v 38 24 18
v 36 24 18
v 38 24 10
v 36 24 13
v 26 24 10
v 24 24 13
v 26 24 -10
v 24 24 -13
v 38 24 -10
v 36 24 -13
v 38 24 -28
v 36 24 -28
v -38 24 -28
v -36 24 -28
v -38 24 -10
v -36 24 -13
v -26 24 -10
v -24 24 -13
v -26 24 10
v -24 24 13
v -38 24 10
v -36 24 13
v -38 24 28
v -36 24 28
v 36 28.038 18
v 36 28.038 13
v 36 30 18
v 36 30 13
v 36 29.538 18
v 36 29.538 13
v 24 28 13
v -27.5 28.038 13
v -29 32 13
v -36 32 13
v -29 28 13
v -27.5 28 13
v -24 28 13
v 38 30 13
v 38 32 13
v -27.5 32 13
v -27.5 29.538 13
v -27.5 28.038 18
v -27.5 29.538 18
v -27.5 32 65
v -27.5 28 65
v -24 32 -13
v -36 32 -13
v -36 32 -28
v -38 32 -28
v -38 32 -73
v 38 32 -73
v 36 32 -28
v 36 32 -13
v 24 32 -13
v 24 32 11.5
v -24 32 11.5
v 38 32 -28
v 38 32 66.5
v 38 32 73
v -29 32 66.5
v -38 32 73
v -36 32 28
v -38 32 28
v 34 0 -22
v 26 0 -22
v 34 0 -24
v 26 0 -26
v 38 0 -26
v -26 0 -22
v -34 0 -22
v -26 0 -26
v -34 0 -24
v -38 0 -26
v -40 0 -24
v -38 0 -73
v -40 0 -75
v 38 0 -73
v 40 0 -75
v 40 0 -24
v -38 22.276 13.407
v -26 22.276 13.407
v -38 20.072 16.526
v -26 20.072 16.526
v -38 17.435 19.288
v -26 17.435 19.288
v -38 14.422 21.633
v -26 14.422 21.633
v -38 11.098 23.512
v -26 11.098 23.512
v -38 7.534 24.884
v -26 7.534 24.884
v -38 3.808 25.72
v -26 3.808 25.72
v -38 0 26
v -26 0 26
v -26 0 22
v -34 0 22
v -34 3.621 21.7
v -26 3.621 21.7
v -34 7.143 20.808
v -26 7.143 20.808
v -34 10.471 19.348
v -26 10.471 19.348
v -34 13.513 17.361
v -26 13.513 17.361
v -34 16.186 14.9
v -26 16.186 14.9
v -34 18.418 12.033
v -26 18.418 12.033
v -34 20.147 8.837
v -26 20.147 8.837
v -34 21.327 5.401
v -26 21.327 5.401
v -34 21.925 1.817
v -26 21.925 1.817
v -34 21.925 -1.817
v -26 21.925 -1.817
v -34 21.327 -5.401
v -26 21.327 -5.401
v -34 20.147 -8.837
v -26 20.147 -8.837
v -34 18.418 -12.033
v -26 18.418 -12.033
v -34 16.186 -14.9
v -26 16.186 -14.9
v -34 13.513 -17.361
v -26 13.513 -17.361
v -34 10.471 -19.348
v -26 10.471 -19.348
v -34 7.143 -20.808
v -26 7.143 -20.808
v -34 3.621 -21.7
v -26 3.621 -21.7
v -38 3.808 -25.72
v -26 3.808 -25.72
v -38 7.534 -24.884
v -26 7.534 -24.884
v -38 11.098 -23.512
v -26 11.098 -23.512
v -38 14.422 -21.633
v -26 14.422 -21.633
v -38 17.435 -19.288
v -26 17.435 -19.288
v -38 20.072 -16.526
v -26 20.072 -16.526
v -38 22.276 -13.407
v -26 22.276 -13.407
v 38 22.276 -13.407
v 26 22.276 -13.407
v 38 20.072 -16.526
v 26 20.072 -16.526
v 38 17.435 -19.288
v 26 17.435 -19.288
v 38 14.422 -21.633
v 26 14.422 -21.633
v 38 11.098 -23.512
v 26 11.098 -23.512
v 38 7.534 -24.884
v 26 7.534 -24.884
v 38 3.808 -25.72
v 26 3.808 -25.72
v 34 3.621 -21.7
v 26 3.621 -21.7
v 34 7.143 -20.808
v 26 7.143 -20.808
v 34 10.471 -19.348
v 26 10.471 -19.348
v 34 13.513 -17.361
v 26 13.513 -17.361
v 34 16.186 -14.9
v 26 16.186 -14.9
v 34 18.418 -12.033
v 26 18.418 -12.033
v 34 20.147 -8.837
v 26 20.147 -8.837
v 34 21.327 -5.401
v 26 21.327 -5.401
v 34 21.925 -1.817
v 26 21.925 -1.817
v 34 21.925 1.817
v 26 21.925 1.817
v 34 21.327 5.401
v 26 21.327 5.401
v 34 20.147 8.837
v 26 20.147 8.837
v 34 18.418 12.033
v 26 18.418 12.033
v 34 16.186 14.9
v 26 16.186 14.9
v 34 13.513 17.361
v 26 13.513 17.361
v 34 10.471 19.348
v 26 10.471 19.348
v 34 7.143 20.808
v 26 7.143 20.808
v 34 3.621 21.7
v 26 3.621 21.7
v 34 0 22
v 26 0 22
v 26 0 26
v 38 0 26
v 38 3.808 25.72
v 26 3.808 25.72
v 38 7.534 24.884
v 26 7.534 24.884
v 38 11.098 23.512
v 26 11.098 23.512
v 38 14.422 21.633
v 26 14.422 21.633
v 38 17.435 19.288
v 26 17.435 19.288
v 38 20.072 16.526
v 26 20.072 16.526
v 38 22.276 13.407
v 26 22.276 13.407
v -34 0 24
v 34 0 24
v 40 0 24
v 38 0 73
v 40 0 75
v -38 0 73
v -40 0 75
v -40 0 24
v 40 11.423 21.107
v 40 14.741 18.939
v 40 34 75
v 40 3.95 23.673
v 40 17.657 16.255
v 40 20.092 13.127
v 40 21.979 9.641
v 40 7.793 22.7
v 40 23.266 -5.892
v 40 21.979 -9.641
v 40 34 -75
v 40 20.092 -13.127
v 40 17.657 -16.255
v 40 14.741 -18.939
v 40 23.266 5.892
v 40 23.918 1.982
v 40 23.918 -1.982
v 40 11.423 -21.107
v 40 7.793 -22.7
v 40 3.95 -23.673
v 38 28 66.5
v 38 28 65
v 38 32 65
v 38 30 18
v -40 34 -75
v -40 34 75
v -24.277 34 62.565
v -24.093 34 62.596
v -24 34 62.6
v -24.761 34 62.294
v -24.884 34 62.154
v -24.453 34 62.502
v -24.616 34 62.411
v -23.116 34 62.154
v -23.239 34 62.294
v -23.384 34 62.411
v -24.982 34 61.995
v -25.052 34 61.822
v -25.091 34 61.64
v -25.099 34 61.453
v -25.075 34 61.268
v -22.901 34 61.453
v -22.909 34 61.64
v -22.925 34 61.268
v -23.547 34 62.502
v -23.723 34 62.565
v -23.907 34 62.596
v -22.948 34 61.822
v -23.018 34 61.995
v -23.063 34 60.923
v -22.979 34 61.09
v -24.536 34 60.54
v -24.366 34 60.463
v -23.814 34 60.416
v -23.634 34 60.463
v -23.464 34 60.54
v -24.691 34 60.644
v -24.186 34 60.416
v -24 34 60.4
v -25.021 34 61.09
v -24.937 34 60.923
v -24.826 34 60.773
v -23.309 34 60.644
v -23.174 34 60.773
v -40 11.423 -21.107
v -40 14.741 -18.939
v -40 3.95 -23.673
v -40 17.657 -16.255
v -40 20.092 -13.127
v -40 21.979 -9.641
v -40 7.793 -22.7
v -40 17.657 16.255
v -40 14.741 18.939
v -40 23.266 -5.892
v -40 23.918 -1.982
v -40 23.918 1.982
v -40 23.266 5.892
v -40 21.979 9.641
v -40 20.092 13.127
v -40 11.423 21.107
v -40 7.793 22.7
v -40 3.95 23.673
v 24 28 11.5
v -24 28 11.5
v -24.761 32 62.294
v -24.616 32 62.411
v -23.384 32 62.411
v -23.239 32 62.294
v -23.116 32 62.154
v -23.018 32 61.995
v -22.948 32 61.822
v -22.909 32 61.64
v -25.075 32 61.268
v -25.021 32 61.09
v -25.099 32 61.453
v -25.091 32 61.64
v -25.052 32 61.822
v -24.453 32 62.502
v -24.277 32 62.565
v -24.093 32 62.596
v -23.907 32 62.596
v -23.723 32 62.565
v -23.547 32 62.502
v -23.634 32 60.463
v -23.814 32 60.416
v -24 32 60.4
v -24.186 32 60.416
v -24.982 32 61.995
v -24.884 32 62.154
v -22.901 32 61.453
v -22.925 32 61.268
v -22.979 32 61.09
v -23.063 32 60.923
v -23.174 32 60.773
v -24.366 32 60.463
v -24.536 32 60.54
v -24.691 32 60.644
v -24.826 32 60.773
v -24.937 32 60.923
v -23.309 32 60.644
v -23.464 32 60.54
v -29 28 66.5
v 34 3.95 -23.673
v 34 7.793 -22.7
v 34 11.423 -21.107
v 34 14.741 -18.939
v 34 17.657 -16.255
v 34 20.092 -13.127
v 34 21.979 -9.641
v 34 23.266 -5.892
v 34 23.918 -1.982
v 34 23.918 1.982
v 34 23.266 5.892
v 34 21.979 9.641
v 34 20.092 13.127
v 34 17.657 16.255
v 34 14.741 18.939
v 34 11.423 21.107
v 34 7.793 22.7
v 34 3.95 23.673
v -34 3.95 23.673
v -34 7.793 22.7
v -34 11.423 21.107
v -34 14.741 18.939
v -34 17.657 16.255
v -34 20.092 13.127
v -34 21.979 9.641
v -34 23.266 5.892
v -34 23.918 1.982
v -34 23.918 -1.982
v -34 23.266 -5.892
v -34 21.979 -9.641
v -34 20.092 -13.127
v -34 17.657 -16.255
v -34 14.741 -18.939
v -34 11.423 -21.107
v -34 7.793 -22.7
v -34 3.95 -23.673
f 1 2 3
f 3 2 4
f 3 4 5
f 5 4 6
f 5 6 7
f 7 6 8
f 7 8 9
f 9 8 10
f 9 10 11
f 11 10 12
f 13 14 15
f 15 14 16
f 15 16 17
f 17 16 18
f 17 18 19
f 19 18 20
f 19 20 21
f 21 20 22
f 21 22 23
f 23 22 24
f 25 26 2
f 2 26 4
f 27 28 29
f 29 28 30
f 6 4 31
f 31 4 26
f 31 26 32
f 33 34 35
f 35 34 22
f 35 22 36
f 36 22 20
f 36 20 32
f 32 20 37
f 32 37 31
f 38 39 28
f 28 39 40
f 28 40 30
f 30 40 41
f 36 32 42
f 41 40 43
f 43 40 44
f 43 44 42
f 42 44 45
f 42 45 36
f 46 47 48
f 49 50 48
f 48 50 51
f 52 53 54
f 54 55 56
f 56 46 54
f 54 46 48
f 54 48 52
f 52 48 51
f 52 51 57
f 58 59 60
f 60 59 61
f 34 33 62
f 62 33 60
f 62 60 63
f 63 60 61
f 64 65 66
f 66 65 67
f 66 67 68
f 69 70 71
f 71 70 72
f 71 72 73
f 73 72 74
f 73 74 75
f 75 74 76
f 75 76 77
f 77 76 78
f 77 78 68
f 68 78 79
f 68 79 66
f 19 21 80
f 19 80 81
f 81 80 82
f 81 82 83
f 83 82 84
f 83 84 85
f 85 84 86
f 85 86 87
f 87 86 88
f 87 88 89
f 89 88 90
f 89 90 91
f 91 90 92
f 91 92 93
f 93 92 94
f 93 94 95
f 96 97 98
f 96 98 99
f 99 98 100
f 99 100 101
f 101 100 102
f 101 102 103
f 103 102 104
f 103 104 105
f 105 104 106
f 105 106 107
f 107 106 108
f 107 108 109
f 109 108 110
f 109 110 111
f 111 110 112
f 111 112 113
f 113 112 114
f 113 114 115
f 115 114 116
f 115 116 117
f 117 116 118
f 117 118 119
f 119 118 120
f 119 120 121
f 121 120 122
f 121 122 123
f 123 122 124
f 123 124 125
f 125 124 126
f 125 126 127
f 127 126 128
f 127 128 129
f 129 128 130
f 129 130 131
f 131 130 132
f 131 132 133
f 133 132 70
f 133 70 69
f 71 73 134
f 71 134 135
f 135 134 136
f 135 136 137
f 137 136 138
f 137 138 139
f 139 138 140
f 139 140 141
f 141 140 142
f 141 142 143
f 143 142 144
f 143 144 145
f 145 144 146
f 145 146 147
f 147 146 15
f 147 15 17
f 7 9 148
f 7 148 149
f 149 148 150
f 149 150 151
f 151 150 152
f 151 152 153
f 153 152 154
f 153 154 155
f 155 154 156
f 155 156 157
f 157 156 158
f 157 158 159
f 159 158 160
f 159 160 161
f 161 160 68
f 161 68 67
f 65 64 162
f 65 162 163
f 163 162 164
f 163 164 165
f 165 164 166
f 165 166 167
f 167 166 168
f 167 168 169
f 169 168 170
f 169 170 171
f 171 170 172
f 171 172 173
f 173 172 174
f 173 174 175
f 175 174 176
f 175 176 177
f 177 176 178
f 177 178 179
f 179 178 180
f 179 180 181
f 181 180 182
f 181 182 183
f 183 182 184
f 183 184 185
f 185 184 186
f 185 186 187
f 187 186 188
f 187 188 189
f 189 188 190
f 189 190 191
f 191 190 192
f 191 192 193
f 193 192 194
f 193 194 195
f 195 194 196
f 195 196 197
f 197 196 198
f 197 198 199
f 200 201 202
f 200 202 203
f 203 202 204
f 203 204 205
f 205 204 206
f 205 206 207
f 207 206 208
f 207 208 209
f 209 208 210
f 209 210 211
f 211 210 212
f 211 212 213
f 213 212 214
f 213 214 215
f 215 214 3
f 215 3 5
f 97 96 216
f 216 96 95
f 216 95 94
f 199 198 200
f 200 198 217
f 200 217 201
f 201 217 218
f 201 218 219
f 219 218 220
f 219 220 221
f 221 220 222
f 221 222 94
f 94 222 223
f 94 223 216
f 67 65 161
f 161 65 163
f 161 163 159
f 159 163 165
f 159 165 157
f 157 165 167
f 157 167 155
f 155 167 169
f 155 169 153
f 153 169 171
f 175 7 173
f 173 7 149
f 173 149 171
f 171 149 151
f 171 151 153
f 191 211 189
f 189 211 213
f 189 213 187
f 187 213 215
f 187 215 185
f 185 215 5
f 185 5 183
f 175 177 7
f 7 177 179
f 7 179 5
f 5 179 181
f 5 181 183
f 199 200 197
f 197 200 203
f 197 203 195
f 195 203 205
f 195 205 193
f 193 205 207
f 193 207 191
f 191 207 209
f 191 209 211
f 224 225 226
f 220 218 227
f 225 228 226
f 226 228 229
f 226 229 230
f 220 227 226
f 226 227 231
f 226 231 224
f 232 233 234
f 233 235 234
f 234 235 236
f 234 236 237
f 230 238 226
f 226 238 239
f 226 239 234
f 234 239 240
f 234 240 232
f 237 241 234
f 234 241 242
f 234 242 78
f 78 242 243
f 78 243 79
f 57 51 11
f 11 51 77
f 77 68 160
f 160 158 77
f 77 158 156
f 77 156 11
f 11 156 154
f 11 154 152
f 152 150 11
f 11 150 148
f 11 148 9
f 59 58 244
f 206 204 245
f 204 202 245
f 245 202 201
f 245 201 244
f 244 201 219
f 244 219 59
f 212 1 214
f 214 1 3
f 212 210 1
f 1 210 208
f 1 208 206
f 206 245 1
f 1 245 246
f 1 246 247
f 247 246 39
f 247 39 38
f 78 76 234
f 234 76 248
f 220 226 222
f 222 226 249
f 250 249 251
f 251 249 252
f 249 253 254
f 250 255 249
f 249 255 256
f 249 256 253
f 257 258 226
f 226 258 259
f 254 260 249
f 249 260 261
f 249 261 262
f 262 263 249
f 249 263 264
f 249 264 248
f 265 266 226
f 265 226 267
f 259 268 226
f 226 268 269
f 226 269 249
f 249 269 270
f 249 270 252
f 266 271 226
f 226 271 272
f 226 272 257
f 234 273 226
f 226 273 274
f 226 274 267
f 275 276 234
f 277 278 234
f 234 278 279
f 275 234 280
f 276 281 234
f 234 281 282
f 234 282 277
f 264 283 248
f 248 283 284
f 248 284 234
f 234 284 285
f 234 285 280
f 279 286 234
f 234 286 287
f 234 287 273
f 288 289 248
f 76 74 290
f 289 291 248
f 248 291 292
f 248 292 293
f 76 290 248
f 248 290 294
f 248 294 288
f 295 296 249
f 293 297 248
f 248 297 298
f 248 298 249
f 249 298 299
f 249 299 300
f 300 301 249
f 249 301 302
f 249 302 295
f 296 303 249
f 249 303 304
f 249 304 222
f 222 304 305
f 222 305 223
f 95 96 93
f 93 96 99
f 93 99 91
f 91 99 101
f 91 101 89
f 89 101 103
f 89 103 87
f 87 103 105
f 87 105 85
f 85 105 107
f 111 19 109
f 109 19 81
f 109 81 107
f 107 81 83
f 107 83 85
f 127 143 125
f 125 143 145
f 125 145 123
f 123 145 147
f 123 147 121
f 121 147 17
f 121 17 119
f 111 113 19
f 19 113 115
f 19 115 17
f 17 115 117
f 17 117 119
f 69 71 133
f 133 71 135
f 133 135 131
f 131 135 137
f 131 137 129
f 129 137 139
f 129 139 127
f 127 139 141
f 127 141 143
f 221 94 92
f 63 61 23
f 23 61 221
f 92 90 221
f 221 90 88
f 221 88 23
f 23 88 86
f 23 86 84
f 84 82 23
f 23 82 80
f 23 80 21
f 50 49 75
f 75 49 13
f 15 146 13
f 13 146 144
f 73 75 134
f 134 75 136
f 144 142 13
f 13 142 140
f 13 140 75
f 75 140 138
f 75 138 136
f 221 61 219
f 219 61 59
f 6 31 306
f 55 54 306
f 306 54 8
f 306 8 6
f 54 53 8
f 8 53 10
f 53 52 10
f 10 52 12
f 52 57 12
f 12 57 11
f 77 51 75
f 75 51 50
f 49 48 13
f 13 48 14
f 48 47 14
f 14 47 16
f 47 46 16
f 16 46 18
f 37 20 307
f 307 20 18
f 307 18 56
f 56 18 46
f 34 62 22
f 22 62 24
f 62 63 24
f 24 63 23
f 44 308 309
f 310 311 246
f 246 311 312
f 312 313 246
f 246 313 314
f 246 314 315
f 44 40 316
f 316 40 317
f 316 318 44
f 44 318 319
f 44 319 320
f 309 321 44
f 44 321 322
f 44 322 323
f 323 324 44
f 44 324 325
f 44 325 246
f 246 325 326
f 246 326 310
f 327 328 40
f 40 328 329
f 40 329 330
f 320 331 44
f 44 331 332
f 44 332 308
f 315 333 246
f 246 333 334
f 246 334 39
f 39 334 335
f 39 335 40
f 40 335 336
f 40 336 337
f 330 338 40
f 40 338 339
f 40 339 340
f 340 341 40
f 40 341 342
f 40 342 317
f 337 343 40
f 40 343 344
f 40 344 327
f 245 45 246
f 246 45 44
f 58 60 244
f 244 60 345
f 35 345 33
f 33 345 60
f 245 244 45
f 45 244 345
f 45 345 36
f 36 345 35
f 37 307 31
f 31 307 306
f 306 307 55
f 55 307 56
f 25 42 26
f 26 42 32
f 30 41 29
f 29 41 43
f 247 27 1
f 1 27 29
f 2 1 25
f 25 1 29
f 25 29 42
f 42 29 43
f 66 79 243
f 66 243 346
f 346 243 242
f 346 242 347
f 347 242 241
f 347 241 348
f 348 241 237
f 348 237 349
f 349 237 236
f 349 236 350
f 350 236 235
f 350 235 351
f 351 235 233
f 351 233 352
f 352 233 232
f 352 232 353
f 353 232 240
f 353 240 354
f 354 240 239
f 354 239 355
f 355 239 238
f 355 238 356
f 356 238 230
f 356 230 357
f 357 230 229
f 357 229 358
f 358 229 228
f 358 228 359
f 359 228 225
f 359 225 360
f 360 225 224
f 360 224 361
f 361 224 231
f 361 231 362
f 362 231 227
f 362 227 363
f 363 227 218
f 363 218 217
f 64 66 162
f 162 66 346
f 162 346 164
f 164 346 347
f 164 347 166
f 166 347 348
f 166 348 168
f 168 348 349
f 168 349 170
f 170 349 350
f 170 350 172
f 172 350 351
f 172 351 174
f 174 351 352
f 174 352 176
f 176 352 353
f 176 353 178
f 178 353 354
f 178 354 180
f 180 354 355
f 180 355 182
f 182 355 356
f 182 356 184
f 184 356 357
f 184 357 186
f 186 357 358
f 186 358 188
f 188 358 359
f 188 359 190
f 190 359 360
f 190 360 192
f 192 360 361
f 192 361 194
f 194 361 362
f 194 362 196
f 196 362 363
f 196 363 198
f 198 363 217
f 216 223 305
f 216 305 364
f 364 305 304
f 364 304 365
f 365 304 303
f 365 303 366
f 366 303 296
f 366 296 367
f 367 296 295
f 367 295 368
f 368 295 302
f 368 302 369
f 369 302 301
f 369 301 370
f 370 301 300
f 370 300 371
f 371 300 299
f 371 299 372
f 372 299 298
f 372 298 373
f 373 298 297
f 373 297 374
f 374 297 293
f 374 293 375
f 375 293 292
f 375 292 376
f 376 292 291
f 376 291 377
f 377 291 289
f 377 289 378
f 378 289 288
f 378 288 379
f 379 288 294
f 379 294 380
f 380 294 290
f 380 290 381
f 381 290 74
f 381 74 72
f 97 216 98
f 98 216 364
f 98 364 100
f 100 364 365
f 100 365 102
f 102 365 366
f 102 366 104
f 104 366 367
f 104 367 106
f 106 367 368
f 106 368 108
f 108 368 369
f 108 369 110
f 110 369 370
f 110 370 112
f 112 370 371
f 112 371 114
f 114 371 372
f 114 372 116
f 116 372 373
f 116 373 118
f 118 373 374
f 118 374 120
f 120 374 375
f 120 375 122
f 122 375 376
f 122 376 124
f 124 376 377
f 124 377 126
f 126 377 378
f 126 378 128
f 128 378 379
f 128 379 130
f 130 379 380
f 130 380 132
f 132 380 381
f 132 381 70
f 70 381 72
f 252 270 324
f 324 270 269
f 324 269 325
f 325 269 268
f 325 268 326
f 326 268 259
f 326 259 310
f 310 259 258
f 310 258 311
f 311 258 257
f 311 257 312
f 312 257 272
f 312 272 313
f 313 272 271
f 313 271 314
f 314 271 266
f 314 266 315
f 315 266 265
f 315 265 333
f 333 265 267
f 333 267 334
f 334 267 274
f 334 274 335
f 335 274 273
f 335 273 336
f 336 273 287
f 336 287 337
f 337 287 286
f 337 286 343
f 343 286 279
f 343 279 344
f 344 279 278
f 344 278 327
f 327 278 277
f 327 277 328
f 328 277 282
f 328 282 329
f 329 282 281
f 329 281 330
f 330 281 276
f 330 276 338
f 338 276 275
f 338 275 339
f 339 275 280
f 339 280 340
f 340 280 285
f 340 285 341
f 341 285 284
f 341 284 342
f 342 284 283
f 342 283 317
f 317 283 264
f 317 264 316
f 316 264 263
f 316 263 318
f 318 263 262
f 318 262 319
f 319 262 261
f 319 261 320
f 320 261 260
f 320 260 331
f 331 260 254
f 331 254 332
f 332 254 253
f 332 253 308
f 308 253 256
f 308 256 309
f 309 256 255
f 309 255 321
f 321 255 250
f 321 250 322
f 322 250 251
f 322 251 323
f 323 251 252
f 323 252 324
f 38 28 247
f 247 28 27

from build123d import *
from build123d.topology import SkipClean

# Parameters (mm, degrees)
EXTRUDE_2_DEPTH      = 40
EXTRUDE_2_DEPTH_BACK = 40
SKETCH_1_W           = 150
SKETCH_1_H           = 10
EXTRUDE_3_DEPTH      = 14
EXTRUDE_4_DEPTH      = 14
SKETCH_4_W           = 2
SKETCH_4_H           = 52
EXTRUDE_5_DEPTH      = 24
SKETCH_5_R           = 22
CUT_EXTRUDE_1_DEPTH  = 81
CUT_EXTRUDE_6_DEPTH  = 8
SKETCH_7_W           = 69
SKETCH_7_H           = 55
SKETCH_7_W_2         = 65.5
SKETCH_7_H_2         = 52
EXTRUDE_6_DEPTH      = 4
SKETCH_12_W          = 66
SKETCH_12_H          = 1.5
EXTRUDE_8_DEPTH      = 5
CUT_EXTRUDE_7_DEPTH  = 6
CUT_EXTRUDE_START    = -6
CUT_EXTRUDE_8_DEPTH  = 6
SKETCH_15_R          = 1.1
CUT_EXTRUDE_9_DEPTH  = 4
SKETCH_16_W          = 15.246183725
SKETCH_16_H          = 18.547486822
CUT_EXTRUDE_10_DEPTH = 2
SKETCH_17_W          = 13.790442518
SKETCH_17_H          = 12.65745234
CUT_EXTRUDE_11_DEPTH = 8
EXTRUDE_9_DEPTH      = 24


with BuildPart() as part:
    # Эскиз1 → Бобышка-Вытянуть2 (new, two sides: drawn at the far end of the back side and taken through both)
    with BuildSketch(Plane(origin=(0, 0, 0), x_dir=(0, 0, -1), z_dir=(1, 0, 0)).offset(-EXTRUDE_2_DEPTH_BACK)):
        with Locations((0, 29)):
            Rectangle(SKETCH_1_W, SKETCH_1_H)
    extrude(amount=EXTRUDE_2_DEPTH + EXTRUDE_2_DEPTH_BACK)

    # Эскиз3 → Бобышка-Вытянуть4 (add)
    with BuildSketch(Plane.ZY.offset(40)):
        with BuildLine():
            Line((-26, 0), (-22, 0))
            ThreePointArc((-22, 0), (0, 22), (22, 0))
            Line((22, 0), (26, 0))
            ThreePointArc((26, 0), (0, 26), (-26, 0))
        make_face()
    extrude(amount=-EXTRUDE_4_DEPTH)



with BuildPart() as body_2:
    # Эскиз2 → Бобышка-Вытянуть3 (new body)
    with BuildSketch(Plane(origin=(40, 0, 0), x_dir=(0, 0, -1), z_dir=(1, 0, 0))):
        with BuildLine():
            Line((-26, 0), (-22, 0))
            ThreePointArc((-22, 0), (0, 22), (22, 0))
            Line((22, 0), (26, 0))
            ThreePointArc((26, 0), (0, 26), (-26, 0))
        make_face()
    extrude(amount=-EXTRUDE_3_DEPTH)


with BuildPart() as part_1:
    add(part.part)

    add(body_2.part)  # Бобышка-Вытянуть5 merges body 2
    # Эскиз4 → Бобышка-Вытянуть5 (add)
    with BuildSketch(Plane(origin=(0, 24, 0), x_dir=(-1, 0, 0), z_dir=(0, -1, 0))):
        with Locations((39, 0)):
            Rectangle(SKETCH_4_W, SKETCH_4_H)
        with Locations((-39, 0)):
            Rectangle(SKETCH_4_W, SKETCH_4_H)
    extrude(amount=EXTRUDE_5_DEPTH)

    # Эскиз5 → Вырез-Вытянуть1 (cut)
    with SkipClean():  # the faces are left unmerged after this step: merging them gives an invalid solid
        with BuildSketch(Plane(origin=(40, 0, 0), x_dir=(0, 0, -1), z_dir=(1, 0, 0))):
            Circle(SKETCH_5_R)
        extrude(amount=-CUT_EXTRUDE_1_DEPTH, mode=Mode.SUBTRACT)
    add(part_1.part.scale(1), mode=Mode.REPLACE)  # the faces are merged on a copy

    # Эскиз6 → Вырез-Вытянуть6 (cut)
    with BuildSketch(Plane(origin=(0, 24, 0), x_dir=(-1, 0, 0), z_dir=(0, -1, 0))):
        Polygon((38, 28), (36, 28), (36, 13), (24, 13), (24, -13), (36, -13), (36, -28), (38, -28), (38, -73), (-38, -73), (-38, -27.999124699), (-36, -27.999124699), (-36, -13), (-24, -13), (-24, 13), (-36, 13), (-36, 28), (-38, 28), (-38, 73), (38, 73), align=None)
    extrude(amount=-CUT_EXTRUDE_6_DEPTH, mode=Mode.SUBTRACT)

    # Эскиз7 → Бобышка-Вытянуть6 (add)
    with BuildSketch(Plane.XZ.offset(-32)):
        with Locations((5.5, 39)):
            Rectangle(SKETCH_7_W, SKETCH_7_H)
        with Locations((5.25, 39)):
            Rectangle(SKETCH_7_W_2, SKETCH_7_H_2, mode=Mode.SUBTRACT)
    extrude(amount=EXTRUDE_6_DEPTH)

    # Эскиз12 → Бобышка-Вытянуть8 (add)
    with BuildSketch(Plane.XY.offset(13)):
        with Locations((5, 28.788266855)):
            Rectangle(SKETCH_12_W, SKETCH_12_H)
    extrude(amount=EXTRUDE_8_DEPTH)

    # Эскиз13 → Вырез-Вытянуть7 (cut)
    with BuildSketch(Plane(origin=(40, 0, 0), x_dir=(0, 0, -1), z_dir=(1, 0, 0))):
        with BuildLine():
            Line((-24, 0), (-22, 0))
            ThreePointArc((-22, 0), (0, 22), (22, 0))
            Line((22, 0), (24, 0))
            ThreePointArc((24, 0), (0, 24), (-24, 0))
        make_face()
    extrude(amount=-CUT_EXTRUDE_7_DEPTH, mode=Mode.SUBTRACT)

    # Эскиз14 → Вырез-Вытянуть8 (cut)
    with BuildSketch(Plane.ZY.offset(40).offset(CUT_EXTRUDE_START)):
        with BuildLine():
            Line((-24, 0), (-22, 0))
            ThreePointArc((-22, 0), (0, 22), (22, 0))
            Line((22, 0), (24, 0))
            ThreePointArc((24, 0), (0, 24), (-24, 0))
        make_face()
    extrude(amount=CUT_EXTRUDE_8_DEPTH, mode=Mode.SUBTRACT)

    # Эскиз15 → Вырез-Вытянуть9 (cut)
    with BuildSketch(Plane.XZ.offset(-32)):
        with Locations((-24, 61.5)):
            Circle(SKETCH_15_R)
    extrude(amount=-CUT_EXTRUDE_9_DEPTH, mode=Mode.SUBTRACT)

    # Эскиз16 → Вырез-Вытянуть10 (cut)
    with BuildSketch(Plane.XZ.offset(-32)):
        with Locations((30.376908138, 22.273743411)):
            Rectangle(SKETCH_16_W, SKETCH_16_H)
    extrude(amount=CUT_EXTRUDE_10_DEPTH, mode=Mode.SUBTRACT)

    # Эскиз17 → Вырез-Вытянуть11 (cut)
    with BuildSketch(Plane.XZ.offset(-24)):
        with Locations((31.104778741, 24.32872617)):
            Rectangle(SKETCH_17_W, SKETCH_17_H)
    extrude(amount=-CUT_EXTRUDE_11_DEPTH, mode=Mode.SUBTRACT)

    # Эскиз18 → Бобышка-Вытянуть9 (add)
    with BuildSketch(Plane.XZ.offset(-24)):
        Polygon((-40, -24), (-38, -24), (-38, -26), (-38, -73), (38, -73), (38, -26), (38, -24), (40, -24), (40, -75), (-40, -75), align=None)
        Polygon((-40, 75), (40, 75), (40, 26), (40, 24), (38, 24), (38, 26), (38, 73), (-38, 73), (-38, 26), (-38, 24), (-40, 24), (-40, 26), align=None)
    extrude(amount=EXTRUDE_9_DEPTH)


solid = part_1.part
